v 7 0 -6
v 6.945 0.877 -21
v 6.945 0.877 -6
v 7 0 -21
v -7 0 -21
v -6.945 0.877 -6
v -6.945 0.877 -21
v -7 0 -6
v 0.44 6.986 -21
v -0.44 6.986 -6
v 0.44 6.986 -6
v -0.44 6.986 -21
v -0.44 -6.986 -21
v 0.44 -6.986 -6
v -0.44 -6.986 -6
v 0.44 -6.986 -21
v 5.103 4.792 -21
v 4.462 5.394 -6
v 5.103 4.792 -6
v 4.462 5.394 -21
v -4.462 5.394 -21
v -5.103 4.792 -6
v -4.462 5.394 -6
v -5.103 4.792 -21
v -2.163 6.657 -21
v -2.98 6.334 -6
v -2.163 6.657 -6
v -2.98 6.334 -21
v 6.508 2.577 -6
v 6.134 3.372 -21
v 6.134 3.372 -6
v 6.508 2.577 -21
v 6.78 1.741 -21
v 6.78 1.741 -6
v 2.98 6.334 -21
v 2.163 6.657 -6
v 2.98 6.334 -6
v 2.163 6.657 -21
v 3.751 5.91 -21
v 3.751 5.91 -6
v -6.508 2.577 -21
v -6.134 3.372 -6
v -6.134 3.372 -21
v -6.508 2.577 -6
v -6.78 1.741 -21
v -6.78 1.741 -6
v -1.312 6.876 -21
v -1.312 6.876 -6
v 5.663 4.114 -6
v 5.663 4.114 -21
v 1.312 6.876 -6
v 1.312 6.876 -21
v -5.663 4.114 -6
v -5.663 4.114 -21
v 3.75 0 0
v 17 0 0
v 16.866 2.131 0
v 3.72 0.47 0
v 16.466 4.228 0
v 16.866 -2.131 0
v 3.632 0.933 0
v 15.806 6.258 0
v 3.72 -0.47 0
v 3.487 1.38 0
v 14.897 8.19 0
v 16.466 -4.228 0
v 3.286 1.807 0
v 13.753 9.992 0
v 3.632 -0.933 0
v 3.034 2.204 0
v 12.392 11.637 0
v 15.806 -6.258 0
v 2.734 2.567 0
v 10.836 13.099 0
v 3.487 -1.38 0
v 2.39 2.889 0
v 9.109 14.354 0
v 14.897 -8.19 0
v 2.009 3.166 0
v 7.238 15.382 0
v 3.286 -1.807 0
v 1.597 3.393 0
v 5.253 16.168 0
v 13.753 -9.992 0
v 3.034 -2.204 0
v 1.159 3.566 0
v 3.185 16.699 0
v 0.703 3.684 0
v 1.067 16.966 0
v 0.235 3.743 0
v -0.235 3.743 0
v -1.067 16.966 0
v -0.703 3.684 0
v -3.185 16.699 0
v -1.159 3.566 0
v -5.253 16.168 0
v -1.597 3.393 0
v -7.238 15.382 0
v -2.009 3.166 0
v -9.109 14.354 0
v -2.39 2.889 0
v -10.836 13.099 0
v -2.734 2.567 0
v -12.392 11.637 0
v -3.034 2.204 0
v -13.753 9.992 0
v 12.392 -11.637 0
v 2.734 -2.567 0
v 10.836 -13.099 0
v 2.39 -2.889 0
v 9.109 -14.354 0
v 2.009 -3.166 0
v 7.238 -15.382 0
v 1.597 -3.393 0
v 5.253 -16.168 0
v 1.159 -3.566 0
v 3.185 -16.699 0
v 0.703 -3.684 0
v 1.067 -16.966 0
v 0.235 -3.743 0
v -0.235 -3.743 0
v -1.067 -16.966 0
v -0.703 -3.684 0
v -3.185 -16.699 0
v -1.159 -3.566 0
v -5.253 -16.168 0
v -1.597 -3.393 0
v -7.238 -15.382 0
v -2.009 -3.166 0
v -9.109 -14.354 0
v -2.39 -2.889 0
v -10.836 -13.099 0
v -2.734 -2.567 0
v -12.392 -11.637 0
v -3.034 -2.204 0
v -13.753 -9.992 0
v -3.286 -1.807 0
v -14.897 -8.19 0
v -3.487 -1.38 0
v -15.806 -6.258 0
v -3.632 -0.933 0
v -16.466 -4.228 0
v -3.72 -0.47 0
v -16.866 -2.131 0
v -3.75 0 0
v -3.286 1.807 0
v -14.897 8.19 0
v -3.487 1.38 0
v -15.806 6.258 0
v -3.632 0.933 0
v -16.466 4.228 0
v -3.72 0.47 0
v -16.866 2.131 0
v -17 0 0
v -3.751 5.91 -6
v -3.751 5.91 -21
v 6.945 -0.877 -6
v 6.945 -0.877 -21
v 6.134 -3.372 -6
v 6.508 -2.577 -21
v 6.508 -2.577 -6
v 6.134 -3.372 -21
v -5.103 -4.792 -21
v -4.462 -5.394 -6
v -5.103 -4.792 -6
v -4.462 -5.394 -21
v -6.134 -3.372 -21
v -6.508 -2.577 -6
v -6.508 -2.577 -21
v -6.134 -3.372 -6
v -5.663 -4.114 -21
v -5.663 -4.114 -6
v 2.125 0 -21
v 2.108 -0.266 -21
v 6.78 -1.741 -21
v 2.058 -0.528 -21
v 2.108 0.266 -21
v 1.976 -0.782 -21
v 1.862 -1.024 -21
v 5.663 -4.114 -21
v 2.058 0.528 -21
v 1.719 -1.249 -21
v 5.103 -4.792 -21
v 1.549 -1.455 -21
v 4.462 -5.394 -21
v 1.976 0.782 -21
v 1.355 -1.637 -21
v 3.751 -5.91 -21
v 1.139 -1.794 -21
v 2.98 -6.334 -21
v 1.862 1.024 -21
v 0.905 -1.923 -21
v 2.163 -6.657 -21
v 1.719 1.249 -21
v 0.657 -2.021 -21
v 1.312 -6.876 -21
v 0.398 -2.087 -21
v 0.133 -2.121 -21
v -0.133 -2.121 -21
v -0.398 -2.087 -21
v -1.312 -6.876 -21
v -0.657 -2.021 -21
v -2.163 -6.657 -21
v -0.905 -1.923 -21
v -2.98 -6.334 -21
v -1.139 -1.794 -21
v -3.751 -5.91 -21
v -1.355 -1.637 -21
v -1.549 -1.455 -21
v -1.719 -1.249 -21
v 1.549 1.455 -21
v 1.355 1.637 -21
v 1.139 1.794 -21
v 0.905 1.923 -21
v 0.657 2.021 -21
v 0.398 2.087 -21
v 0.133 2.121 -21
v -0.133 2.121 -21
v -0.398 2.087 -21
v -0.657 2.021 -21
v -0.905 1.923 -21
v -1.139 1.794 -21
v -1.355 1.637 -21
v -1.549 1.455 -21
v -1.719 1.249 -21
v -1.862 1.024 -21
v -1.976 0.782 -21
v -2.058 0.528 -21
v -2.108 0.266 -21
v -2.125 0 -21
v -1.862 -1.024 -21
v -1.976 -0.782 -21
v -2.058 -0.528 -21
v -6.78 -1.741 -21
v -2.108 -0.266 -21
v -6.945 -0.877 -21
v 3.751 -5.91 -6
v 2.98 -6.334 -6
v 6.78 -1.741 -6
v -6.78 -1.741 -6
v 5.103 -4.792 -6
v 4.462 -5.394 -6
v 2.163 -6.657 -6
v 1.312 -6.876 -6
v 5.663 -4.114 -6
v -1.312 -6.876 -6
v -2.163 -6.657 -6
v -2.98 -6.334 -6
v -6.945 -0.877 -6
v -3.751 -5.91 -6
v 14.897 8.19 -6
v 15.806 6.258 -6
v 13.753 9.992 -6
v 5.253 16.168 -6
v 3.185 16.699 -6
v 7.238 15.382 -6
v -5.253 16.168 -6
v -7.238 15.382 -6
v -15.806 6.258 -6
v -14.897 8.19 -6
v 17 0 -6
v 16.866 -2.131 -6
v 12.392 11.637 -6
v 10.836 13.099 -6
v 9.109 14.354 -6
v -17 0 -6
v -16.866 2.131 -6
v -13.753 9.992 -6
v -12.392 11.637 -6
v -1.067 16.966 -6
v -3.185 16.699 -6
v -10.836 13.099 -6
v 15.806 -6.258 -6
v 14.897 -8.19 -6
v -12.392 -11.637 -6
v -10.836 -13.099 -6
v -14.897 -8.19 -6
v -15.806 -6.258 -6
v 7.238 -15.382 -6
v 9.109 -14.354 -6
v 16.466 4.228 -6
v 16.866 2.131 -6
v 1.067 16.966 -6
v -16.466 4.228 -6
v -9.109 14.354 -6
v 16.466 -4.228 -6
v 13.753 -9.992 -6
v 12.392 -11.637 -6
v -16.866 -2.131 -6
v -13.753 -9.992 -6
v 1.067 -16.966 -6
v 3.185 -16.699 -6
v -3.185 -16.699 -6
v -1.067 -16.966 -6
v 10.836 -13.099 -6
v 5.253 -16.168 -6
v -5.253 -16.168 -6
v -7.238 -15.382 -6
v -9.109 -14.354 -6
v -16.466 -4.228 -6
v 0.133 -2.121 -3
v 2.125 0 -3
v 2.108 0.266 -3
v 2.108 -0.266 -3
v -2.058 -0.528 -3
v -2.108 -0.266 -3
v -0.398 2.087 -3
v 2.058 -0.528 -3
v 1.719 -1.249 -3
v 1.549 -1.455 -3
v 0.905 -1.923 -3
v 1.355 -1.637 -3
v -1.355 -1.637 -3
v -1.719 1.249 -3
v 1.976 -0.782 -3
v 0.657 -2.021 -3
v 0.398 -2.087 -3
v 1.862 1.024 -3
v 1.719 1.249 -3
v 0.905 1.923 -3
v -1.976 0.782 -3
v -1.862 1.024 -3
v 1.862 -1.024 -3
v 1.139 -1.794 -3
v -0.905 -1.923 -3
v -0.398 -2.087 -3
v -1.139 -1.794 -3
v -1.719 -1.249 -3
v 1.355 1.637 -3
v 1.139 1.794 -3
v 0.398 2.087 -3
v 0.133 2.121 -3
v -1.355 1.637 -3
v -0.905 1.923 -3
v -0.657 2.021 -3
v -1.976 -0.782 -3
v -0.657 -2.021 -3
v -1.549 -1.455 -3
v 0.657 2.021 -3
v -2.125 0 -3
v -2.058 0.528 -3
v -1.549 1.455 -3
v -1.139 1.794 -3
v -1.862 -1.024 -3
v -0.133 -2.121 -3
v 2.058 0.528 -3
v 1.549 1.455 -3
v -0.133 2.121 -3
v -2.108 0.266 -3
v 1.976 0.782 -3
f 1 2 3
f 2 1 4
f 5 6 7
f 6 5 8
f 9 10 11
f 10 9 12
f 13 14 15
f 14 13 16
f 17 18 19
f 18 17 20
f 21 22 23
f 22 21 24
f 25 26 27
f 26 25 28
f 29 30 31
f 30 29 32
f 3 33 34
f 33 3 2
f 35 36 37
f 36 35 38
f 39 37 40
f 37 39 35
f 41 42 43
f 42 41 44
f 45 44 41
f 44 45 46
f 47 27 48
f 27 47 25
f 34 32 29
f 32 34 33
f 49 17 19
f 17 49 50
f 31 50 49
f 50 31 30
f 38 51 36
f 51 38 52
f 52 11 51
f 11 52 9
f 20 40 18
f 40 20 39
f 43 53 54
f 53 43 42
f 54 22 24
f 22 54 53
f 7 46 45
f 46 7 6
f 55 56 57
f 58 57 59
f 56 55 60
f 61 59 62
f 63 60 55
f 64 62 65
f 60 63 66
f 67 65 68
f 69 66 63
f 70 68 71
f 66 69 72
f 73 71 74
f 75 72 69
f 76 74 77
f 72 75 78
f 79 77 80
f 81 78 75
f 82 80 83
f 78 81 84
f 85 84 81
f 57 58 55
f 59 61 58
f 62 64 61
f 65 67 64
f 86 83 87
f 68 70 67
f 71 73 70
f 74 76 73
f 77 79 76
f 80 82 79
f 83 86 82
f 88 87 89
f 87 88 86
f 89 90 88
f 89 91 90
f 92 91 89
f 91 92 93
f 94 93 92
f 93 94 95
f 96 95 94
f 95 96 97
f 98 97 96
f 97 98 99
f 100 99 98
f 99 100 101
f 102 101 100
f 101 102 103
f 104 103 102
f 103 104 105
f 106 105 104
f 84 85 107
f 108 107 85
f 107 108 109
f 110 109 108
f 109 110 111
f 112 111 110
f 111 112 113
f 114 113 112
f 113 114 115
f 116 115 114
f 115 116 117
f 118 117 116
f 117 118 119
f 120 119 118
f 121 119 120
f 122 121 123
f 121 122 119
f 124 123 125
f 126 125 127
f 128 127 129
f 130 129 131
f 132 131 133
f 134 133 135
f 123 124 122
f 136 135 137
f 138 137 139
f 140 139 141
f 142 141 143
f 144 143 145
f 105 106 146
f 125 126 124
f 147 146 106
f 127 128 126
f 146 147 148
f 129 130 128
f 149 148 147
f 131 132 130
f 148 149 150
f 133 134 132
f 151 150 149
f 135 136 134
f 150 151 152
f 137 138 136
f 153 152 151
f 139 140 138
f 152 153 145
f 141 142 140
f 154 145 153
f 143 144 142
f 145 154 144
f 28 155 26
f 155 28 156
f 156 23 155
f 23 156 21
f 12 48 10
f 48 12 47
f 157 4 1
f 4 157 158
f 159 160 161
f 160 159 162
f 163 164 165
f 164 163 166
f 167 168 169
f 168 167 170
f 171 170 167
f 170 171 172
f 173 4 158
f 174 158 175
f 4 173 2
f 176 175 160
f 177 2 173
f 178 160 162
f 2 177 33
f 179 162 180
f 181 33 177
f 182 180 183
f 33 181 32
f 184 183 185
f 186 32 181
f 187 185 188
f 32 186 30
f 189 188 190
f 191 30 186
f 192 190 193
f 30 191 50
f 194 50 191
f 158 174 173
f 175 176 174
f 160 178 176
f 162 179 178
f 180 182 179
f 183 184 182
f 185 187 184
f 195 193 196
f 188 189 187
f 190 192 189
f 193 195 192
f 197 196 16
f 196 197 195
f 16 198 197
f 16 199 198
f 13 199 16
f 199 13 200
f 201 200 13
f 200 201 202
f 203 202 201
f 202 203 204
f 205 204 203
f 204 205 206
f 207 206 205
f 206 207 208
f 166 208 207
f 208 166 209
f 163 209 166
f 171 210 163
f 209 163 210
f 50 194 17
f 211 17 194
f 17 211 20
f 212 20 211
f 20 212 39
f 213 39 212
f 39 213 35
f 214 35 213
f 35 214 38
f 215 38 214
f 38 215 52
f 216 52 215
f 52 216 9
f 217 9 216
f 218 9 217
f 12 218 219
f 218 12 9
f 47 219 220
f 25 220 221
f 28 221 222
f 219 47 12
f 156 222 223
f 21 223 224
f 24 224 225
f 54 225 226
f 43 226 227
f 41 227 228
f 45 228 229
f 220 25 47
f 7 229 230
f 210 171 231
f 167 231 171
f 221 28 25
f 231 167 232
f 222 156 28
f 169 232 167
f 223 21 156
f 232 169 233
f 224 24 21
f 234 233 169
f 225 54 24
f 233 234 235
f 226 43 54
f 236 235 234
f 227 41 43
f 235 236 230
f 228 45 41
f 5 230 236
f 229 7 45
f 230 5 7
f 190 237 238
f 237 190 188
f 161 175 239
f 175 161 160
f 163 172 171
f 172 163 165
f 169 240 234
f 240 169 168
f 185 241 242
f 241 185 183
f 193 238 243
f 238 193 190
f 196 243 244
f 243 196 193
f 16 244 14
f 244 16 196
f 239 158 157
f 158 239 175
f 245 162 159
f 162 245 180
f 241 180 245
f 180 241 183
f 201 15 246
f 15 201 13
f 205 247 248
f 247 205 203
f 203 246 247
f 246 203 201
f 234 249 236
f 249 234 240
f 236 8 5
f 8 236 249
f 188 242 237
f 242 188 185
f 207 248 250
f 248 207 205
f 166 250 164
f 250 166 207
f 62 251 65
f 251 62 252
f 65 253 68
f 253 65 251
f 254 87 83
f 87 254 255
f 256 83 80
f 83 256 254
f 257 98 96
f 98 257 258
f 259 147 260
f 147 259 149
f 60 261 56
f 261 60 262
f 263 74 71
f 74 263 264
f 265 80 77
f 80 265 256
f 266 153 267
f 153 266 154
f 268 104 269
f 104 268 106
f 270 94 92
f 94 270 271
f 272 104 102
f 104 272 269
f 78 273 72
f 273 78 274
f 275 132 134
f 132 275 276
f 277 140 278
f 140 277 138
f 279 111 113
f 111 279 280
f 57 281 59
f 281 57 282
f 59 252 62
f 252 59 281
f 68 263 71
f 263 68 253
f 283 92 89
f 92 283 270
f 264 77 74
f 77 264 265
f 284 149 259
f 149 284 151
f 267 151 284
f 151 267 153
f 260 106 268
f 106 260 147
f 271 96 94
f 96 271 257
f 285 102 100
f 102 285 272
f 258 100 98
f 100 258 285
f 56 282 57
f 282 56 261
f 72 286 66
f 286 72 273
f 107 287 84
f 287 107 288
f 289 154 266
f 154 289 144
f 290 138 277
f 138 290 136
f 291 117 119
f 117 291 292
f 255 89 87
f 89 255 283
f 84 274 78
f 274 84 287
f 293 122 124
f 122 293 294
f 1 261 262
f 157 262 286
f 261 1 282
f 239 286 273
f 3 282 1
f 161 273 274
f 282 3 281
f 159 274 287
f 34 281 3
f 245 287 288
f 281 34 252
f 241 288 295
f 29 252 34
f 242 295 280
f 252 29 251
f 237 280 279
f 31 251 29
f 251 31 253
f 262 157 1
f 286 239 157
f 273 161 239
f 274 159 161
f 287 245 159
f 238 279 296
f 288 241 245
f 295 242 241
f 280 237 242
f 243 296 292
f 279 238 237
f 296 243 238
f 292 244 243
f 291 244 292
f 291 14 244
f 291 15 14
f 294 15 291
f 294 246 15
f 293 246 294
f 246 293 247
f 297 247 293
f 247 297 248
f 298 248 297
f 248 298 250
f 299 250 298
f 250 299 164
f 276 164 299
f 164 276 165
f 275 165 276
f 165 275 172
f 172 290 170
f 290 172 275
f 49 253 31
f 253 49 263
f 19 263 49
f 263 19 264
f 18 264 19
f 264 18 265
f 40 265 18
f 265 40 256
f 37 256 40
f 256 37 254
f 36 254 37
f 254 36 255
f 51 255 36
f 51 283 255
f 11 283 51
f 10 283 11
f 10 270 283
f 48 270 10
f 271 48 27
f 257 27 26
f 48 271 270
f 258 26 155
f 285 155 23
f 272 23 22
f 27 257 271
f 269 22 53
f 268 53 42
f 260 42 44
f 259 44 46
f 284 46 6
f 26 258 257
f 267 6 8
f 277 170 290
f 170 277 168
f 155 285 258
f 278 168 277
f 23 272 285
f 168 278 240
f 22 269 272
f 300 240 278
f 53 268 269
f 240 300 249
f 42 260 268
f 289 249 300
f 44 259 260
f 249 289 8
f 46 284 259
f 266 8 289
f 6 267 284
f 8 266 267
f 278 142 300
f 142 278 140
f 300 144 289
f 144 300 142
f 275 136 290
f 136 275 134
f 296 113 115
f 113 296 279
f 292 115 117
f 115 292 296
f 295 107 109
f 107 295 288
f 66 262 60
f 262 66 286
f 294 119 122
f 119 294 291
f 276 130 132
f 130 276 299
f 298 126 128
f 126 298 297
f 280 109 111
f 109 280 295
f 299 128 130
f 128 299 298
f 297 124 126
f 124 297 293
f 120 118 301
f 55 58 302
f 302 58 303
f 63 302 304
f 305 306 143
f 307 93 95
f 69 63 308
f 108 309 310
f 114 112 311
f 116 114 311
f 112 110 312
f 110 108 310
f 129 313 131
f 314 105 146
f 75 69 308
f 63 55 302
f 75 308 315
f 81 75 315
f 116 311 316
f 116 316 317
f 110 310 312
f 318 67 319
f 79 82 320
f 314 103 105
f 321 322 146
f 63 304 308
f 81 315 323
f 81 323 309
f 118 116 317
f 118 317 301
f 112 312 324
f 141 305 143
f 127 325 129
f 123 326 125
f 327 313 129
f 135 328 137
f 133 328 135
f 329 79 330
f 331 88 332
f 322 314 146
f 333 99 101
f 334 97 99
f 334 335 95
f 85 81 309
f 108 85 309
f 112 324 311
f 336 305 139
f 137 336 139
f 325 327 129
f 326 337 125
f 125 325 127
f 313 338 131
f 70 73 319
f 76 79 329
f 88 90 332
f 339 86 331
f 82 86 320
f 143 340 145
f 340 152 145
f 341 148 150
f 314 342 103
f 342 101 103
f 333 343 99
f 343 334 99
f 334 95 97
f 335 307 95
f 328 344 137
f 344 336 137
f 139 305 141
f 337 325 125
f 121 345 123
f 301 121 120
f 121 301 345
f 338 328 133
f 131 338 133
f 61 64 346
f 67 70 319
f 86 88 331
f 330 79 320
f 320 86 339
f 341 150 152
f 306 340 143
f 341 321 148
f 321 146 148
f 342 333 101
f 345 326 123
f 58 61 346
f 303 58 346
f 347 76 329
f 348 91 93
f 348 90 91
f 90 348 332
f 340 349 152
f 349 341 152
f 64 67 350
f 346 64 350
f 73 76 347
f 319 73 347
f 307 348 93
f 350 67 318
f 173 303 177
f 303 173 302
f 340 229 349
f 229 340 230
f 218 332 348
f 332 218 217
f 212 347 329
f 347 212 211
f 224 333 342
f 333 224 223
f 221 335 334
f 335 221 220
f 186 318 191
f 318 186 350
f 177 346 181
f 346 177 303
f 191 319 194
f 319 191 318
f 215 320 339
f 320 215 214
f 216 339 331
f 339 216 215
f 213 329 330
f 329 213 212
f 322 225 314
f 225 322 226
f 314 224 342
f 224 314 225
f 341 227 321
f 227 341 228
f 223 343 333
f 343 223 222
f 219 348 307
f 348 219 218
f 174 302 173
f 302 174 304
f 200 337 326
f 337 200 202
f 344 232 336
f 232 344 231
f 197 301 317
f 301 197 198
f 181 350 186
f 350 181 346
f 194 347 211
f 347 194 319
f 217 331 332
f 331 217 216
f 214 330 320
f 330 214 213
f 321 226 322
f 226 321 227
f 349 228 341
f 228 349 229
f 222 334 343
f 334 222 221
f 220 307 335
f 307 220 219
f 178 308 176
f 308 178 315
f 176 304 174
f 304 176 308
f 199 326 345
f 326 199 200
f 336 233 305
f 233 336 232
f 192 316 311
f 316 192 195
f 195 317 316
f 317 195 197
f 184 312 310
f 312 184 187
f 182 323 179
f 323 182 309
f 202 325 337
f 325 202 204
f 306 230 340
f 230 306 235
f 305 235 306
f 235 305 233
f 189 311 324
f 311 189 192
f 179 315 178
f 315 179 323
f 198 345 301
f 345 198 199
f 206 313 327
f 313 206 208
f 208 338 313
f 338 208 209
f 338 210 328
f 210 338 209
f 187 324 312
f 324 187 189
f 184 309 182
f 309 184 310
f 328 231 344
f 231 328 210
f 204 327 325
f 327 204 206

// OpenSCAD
$fn = 50;


difference() {
	union() {
		translate(v = [0, 0, -21.0000000000]) {
			cylinder(h = 21, r = 7.0000000000);
		}
		translate(v = [0, 0, -6.0000000000]) {
			cylinder(h = 6, r = 17.0000000000);
		}
	}
	union() {
		translate(v = [0, 0, 0]) {
			rotate(a = [0, 0, 0]) {
				difference() {
					union() {
						#translate(v = [0, 0, -21.0000000000]) {
							cylinder(h = 21, r = 2.0000000000);
						}
						#translate(v = [0, 0, -3]) {
							cylinder(h = 3, r = 7.0000000000, r1 = 2.1250000000, r2 = 3.7500000000);
						}
						#translate(v = [0, 0, -21.0000000000]) {
							cylinder(h = 21, r = 2.1250000000);
						}
						#translate(v = [0, 0, -21.0000000000]) {
							cylinder(h = 21, r = 2.0000000000);
						}
					}
					union();
				}
			}
		}
	}
}
